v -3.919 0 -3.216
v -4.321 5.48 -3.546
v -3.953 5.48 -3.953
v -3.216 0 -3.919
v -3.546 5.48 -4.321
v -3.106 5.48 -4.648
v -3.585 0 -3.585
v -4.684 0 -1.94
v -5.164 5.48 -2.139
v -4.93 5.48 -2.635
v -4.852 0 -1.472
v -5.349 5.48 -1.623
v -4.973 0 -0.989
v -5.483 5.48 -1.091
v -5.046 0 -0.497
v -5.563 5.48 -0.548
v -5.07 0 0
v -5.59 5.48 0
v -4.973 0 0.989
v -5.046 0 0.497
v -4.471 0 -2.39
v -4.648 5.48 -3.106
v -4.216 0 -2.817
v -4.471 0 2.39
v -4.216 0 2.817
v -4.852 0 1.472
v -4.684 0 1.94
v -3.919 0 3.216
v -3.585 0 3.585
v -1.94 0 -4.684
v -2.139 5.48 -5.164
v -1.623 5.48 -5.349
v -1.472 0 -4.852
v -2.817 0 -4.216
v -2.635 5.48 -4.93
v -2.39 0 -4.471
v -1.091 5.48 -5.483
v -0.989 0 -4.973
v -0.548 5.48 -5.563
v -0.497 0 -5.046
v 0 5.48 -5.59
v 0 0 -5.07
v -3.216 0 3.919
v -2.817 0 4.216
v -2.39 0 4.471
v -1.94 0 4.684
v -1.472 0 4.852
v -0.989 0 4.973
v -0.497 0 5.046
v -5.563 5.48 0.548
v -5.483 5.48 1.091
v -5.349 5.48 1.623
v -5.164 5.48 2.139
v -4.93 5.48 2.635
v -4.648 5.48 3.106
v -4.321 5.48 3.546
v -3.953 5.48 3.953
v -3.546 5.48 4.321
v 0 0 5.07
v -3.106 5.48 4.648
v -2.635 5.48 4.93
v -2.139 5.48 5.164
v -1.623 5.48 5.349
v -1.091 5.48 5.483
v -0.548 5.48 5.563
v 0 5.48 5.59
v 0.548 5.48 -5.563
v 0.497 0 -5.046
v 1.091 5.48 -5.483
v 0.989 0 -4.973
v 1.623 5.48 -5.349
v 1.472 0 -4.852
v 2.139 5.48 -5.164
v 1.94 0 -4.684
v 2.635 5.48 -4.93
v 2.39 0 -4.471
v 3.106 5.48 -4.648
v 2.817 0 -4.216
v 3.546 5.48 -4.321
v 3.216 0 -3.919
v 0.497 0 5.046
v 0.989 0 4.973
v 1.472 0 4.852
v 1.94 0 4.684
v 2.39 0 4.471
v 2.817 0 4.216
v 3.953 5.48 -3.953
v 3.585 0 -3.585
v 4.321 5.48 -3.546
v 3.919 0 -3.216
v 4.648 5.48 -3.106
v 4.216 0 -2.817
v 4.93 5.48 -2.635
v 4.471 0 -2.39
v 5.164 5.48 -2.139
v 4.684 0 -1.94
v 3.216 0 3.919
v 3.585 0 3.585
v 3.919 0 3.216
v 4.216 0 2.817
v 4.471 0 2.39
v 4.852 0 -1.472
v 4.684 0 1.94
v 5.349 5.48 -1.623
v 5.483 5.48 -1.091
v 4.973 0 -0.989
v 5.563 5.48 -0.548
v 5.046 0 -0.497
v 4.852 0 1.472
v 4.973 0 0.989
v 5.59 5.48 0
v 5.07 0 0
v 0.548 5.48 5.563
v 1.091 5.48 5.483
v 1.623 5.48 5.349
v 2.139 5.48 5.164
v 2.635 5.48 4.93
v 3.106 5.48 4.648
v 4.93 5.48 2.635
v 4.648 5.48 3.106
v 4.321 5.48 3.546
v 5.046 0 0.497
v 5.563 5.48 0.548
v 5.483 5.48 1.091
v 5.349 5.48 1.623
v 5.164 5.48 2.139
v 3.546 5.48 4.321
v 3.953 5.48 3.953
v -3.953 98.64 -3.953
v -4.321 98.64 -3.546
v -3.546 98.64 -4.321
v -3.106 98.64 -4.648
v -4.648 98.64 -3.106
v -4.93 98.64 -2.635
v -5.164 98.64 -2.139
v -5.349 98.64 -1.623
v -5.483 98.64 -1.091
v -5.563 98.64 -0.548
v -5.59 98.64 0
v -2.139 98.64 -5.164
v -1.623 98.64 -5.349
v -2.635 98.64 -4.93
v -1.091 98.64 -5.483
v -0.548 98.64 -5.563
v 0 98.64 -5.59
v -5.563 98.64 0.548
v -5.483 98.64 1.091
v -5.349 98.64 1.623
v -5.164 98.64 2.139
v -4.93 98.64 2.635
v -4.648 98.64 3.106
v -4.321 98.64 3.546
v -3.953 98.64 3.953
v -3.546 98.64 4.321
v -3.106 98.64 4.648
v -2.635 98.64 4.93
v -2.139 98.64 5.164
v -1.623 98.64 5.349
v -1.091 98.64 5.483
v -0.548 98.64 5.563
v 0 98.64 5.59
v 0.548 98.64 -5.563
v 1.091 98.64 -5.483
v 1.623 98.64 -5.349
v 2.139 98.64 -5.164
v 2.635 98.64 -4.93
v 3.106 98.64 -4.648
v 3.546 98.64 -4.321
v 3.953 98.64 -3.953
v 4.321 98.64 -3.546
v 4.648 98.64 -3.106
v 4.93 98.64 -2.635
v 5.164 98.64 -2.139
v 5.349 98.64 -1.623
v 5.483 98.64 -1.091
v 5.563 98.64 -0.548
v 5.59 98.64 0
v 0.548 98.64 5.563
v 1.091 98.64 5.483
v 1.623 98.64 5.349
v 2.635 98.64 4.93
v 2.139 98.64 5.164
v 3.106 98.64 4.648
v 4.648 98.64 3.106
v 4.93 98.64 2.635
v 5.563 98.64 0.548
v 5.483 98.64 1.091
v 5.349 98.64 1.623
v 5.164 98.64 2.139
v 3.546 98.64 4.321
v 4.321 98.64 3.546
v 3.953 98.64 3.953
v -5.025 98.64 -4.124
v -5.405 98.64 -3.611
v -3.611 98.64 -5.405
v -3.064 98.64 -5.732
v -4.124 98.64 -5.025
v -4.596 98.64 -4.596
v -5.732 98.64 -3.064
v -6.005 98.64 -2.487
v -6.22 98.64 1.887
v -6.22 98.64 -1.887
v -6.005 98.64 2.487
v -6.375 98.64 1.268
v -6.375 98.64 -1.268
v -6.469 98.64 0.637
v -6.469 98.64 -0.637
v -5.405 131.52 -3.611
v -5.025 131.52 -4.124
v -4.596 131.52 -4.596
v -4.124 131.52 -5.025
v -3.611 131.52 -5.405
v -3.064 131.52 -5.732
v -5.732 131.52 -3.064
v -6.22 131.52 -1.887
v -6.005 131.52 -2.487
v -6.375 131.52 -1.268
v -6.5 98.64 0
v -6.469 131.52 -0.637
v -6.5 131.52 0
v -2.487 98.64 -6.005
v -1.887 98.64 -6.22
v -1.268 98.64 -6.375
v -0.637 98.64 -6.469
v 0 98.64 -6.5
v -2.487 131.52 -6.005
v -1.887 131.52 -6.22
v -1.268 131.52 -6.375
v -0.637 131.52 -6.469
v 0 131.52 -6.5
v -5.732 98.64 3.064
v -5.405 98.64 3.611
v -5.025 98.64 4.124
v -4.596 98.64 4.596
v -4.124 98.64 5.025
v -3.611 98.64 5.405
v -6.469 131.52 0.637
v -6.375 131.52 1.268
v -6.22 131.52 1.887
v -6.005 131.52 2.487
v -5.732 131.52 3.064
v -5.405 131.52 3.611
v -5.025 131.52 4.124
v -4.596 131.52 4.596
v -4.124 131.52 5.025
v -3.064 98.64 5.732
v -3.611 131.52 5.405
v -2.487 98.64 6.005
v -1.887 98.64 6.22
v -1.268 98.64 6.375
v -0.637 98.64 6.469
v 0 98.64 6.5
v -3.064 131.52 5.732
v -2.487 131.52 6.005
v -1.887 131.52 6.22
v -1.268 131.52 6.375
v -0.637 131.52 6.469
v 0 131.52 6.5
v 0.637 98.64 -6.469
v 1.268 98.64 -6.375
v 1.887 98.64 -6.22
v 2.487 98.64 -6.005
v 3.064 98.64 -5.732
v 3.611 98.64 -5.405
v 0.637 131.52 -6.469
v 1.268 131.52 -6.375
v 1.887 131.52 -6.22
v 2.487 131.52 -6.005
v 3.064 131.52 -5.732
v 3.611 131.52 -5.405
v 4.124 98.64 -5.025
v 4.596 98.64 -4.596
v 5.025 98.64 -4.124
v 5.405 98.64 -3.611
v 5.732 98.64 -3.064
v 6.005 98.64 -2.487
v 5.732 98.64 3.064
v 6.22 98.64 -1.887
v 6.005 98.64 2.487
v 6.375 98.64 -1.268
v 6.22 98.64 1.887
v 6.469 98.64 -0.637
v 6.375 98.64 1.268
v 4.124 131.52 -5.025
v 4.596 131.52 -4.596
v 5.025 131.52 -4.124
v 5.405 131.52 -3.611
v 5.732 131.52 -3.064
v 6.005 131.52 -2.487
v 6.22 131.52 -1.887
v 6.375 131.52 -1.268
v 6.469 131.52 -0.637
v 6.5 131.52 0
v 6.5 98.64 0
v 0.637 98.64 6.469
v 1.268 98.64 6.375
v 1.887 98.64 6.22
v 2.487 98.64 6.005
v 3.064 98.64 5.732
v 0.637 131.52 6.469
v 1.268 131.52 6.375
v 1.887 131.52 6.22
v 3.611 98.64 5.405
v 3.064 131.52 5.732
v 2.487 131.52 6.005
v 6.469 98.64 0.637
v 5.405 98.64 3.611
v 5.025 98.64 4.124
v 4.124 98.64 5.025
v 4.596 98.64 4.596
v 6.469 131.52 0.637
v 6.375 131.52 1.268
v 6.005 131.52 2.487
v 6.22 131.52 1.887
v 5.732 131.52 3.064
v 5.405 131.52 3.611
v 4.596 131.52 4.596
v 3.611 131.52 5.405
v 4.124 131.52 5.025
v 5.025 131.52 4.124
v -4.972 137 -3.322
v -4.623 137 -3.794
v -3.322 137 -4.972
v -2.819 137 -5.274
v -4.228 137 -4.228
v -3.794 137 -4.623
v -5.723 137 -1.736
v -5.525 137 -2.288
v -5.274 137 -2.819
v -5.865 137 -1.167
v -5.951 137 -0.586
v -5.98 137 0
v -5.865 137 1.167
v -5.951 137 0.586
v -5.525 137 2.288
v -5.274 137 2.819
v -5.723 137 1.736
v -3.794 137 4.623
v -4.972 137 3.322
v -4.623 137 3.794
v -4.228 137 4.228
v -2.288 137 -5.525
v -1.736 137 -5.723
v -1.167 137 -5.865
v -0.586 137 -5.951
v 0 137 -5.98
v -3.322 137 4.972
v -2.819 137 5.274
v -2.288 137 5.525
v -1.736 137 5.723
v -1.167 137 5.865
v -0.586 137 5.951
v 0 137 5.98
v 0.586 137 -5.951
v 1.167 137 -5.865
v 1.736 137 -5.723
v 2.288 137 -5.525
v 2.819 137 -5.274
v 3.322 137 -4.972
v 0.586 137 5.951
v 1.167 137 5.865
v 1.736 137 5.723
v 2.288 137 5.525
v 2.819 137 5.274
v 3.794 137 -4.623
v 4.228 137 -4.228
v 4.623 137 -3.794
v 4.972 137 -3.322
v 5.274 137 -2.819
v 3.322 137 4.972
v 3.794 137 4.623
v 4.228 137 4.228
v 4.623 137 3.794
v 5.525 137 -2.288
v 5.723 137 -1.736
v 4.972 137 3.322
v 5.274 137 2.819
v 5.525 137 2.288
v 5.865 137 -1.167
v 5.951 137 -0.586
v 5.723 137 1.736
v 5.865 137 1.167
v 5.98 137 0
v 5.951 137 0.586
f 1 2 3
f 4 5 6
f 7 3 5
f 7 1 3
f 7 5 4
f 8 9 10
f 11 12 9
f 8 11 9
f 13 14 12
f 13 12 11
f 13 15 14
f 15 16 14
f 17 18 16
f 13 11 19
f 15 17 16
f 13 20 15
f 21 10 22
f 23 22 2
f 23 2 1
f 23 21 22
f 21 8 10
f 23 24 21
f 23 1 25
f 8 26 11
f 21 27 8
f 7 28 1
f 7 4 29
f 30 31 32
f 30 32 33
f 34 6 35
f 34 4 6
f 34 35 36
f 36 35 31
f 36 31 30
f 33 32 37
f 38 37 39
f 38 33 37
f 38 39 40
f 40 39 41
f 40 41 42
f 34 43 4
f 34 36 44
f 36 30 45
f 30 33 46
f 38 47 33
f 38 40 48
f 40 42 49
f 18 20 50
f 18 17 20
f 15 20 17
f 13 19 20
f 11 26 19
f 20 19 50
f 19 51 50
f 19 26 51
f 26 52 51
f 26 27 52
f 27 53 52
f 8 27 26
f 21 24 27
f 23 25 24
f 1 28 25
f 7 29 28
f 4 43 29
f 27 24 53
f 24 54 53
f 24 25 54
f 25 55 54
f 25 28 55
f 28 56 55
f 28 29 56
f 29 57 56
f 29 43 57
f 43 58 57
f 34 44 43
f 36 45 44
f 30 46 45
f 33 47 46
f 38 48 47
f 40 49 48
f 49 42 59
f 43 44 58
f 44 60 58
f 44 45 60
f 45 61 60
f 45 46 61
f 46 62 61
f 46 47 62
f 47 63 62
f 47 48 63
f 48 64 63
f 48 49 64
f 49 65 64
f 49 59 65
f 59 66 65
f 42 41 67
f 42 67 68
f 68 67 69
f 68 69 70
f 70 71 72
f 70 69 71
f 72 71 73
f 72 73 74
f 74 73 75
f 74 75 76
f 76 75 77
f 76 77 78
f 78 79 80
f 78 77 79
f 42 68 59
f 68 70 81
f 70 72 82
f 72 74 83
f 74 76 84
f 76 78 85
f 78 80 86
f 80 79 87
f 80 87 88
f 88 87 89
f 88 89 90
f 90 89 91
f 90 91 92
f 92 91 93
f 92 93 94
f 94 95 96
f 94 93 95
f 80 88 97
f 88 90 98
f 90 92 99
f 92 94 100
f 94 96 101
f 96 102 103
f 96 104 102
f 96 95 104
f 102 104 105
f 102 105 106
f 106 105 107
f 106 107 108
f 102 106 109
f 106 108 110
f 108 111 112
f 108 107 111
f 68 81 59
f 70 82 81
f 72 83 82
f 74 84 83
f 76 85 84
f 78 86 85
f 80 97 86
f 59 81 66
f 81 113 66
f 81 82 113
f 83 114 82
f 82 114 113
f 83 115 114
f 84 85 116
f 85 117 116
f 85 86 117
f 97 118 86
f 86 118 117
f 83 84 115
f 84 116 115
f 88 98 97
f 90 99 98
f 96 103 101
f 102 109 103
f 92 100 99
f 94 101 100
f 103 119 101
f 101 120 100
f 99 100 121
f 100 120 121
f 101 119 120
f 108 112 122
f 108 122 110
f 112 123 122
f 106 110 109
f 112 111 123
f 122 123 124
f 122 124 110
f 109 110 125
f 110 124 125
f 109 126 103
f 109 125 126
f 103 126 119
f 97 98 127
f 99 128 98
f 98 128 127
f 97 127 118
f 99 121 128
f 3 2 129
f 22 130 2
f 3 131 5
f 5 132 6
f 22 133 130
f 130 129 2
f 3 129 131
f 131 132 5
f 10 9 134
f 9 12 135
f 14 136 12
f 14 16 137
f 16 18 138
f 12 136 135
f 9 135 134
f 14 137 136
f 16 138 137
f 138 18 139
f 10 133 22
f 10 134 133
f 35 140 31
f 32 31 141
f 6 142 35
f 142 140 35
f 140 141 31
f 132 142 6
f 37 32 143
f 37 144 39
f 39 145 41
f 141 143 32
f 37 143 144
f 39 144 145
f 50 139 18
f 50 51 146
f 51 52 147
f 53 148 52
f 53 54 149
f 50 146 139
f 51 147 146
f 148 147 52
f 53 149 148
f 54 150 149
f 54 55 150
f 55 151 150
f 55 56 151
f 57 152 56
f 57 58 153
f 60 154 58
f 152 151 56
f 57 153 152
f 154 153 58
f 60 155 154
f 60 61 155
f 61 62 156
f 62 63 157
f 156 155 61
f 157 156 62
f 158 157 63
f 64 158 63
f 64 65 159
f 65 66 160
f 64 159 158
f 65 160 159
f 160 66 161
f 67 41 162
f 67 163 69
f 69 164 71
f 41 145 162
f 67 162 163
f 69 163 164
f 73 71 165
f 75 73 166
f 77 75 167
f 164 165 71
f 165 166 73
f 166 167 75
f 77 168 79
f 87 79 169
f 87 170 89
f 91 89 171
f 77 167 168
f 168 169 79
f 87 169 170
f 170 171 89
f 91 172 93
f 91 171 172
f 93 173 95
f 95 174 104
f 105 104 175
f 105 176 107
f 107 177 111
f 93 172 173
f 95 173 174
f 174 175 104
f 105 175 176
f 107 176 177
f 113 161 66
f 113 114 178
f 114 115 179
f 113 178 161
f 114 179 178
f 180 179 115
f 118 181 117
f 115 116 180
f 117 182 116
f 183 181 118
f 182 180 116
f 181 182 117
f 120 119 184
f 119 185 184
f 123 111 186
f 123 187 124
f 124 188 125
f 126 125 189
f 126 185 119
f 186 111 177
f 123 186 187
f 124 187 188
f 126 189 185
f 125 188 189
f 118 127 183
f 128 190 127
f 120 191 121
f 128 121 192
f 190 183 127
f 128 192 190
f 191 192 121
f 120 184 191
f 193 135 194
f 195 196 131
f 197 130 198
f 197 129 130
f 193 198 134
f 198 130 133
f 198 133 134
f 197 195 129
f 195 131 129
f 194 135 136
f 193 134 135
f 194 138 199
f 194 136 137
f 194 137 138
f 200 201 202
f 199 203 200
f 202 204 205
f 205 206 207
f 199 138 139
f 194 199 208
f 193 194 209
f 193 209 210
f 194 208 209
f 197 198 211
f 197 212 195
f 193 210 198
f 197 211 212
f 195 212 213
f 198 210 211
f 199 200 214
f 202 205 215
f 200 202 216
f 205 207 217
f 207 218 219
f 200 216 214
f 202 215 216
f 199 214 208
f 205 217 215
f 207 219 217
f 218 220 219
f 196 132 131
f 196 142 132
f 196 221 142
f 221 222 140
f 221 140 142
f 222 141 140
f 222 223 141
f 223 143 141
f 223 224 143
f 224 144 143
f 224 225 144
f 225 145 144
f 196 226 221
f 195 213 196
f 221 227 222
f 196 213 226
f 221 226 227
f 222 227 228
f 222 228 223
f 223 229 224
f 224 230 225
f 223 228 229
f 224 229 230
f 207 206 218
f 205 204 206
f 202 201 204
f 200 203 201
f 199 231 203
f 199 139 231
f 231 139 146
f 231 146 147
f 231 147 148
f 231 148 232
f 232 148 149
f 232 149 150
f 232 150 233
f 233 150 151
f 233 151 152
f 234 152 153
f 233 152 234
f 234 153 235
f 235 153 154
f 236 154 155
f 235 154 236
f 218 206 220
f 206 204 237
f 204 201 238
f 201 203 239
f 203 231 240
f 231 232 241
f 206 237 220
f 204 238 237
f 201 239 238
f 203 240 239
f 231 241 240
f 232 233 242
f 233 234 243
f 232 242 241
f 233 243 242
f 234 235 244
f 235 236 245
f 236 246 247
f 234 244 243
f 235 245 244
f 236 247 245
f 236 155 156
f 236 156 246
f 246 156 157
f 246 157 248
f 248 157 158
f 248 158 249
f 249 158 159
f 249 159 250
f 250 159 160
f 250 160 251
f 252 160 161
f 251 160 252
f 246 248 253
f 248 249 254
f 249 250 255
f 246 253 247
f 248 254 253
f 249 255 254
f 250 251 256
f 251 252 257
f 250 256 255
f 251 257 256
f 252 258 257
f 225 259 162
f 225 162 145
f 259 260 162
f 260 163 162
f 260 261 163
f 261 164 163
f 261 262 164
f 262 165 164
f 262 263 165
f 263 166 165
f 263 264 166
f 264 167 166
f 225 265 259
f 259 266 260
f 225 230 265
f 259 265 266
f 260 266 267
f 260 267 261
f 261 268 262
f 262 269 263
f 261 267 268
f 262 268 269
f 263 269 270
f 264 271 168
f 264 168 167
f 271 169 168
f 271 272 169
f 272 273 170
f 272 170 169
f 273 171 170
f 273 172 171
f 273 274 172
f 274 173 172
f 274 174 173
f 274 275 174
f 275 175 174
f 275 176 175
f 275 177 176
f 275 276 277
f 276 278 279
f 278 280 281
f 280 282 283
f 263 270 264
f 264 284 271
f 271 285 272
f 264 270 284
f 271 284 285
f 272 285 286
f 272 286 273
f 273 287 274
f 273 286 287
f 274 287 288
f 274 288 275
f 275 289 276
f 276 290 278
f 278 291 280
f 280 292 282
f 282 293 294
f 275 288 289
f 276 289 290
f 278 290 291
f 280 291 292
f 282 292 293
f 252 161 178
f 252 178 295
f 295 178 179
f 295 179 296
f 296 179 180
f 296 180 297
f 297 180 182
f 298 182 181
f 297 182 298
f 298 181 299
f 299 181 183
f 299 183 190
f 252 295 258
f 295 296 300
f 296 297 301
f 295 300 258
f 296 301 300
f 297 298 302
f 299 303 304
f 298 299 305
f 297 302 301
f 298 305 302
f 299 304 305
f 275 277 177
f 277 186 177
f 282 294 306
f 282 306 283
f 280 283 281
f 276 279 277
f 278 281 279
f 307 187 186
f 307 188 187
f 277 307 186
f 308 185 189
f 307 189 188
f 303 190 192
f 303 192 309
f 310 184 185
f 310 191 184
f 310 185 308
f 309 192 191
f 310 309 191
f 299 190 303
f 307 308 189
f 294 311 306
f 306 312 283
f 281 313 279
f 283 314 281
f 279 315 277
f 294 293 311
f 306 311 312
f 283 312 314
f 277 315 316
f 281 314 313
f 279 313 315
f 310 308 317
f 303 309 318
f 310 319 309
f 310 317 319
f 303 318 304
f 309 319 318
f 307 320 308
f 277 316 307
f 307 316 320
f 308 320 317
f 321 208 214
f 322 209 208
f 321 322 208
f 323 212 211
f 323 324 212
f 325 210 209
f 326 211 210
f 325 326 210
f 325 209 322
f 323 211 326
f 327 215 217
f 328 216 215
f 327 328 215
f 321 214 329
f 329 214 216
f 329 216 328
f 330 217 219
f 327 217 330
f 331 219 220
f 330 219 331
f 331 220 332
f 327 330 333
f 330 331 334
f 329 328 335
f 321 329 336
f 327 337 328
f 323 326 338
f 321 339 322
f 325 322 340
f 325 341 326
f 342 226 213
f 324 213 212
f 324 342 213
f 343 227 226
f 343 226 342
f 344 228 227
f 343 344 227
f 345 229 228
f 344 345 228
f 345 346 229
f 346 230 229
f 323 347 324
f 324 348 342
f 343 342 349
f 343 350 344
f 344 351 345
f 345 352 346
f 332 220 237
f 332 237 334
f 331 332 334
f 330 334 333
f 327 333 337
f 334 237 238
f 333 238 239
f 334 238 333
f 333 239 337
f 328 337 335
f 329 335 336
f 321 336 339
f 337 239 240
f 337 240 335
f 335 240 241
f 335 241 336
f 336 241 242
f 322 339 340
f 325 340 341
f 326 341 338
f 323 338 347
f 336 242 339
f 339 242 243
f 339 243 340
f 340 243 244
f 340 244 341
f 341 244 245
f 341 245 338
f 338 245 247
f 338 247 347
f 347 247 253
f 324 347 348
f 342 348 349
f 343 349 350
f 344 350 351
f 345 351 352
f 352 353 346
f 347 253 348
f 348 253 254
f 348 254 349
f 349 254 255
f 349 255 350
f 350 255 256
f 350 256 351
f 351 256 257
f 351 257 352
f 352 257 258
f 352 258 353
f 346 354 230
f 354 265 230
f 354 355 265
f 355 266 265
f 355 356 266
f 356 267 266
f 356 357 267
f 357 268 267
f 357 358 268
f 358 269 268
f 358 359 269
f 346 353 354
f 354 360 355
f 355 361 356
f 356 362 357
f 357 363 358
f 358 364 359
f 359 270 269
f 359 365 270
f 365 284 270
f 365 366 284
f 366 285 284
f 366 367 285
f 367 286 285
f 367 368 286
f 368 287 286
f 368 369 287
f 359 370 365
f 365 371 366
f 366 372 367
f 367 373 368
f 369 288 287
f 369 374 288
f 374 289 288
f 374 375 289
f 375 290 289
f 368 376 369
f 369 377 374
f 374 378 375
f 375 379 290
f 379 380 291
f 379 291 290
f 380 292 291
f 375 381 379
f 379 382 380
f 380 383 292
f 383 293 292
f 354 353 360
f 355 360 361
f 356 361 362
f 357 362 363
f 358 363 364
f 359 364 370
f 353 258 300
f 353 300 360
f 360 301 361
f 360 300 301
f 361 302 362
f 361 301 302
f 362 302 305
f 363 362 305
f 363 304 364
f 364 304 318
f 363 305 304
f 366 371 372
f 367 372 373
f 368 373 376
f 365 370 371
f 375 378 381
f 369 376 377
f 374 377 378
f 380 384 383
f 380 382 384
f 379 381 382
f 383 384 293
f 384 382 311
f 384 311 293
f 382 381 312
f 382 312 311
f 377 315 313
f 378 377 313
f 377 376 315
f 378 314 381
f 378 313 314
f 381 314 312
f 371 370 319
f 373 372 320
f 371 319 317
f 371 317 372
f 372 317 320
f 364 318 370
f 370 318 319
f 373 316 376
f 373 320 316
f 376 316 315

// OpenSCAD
// Sharpie-style felt-tip pen, 13 × 137 mm
// Nominal capped body from the vertical holder's tool identity. The 14 mm pocket includes clearance. Cap and barrel split are illustrative.
// Units: mm
$fn = 64;
union() {
    translate([0, 0, 0]) rotate([-90, 0, 0])
        cylinder(h=5.48, r1=5.07, r2=5.59, $fn=64);
    translate([0, 5.48, 0]) rotate([-90, 0, 0])
        cylinder(h=93.16000000000001, r1=5.59, r2=5.59, $fn=64);
    translate([0, 98.64000000000001, 0]) rotate([-90, 0, 0])
        cylinder(h=32.879999999999995, r1=6.5, r2=6.5, $fn=64);
    translate([0, 131.52, 0]) rotate([-90, 0, 0])
        cylinder(h=5.48, r1=6.5, r2=5.98, $fn=64);
}
